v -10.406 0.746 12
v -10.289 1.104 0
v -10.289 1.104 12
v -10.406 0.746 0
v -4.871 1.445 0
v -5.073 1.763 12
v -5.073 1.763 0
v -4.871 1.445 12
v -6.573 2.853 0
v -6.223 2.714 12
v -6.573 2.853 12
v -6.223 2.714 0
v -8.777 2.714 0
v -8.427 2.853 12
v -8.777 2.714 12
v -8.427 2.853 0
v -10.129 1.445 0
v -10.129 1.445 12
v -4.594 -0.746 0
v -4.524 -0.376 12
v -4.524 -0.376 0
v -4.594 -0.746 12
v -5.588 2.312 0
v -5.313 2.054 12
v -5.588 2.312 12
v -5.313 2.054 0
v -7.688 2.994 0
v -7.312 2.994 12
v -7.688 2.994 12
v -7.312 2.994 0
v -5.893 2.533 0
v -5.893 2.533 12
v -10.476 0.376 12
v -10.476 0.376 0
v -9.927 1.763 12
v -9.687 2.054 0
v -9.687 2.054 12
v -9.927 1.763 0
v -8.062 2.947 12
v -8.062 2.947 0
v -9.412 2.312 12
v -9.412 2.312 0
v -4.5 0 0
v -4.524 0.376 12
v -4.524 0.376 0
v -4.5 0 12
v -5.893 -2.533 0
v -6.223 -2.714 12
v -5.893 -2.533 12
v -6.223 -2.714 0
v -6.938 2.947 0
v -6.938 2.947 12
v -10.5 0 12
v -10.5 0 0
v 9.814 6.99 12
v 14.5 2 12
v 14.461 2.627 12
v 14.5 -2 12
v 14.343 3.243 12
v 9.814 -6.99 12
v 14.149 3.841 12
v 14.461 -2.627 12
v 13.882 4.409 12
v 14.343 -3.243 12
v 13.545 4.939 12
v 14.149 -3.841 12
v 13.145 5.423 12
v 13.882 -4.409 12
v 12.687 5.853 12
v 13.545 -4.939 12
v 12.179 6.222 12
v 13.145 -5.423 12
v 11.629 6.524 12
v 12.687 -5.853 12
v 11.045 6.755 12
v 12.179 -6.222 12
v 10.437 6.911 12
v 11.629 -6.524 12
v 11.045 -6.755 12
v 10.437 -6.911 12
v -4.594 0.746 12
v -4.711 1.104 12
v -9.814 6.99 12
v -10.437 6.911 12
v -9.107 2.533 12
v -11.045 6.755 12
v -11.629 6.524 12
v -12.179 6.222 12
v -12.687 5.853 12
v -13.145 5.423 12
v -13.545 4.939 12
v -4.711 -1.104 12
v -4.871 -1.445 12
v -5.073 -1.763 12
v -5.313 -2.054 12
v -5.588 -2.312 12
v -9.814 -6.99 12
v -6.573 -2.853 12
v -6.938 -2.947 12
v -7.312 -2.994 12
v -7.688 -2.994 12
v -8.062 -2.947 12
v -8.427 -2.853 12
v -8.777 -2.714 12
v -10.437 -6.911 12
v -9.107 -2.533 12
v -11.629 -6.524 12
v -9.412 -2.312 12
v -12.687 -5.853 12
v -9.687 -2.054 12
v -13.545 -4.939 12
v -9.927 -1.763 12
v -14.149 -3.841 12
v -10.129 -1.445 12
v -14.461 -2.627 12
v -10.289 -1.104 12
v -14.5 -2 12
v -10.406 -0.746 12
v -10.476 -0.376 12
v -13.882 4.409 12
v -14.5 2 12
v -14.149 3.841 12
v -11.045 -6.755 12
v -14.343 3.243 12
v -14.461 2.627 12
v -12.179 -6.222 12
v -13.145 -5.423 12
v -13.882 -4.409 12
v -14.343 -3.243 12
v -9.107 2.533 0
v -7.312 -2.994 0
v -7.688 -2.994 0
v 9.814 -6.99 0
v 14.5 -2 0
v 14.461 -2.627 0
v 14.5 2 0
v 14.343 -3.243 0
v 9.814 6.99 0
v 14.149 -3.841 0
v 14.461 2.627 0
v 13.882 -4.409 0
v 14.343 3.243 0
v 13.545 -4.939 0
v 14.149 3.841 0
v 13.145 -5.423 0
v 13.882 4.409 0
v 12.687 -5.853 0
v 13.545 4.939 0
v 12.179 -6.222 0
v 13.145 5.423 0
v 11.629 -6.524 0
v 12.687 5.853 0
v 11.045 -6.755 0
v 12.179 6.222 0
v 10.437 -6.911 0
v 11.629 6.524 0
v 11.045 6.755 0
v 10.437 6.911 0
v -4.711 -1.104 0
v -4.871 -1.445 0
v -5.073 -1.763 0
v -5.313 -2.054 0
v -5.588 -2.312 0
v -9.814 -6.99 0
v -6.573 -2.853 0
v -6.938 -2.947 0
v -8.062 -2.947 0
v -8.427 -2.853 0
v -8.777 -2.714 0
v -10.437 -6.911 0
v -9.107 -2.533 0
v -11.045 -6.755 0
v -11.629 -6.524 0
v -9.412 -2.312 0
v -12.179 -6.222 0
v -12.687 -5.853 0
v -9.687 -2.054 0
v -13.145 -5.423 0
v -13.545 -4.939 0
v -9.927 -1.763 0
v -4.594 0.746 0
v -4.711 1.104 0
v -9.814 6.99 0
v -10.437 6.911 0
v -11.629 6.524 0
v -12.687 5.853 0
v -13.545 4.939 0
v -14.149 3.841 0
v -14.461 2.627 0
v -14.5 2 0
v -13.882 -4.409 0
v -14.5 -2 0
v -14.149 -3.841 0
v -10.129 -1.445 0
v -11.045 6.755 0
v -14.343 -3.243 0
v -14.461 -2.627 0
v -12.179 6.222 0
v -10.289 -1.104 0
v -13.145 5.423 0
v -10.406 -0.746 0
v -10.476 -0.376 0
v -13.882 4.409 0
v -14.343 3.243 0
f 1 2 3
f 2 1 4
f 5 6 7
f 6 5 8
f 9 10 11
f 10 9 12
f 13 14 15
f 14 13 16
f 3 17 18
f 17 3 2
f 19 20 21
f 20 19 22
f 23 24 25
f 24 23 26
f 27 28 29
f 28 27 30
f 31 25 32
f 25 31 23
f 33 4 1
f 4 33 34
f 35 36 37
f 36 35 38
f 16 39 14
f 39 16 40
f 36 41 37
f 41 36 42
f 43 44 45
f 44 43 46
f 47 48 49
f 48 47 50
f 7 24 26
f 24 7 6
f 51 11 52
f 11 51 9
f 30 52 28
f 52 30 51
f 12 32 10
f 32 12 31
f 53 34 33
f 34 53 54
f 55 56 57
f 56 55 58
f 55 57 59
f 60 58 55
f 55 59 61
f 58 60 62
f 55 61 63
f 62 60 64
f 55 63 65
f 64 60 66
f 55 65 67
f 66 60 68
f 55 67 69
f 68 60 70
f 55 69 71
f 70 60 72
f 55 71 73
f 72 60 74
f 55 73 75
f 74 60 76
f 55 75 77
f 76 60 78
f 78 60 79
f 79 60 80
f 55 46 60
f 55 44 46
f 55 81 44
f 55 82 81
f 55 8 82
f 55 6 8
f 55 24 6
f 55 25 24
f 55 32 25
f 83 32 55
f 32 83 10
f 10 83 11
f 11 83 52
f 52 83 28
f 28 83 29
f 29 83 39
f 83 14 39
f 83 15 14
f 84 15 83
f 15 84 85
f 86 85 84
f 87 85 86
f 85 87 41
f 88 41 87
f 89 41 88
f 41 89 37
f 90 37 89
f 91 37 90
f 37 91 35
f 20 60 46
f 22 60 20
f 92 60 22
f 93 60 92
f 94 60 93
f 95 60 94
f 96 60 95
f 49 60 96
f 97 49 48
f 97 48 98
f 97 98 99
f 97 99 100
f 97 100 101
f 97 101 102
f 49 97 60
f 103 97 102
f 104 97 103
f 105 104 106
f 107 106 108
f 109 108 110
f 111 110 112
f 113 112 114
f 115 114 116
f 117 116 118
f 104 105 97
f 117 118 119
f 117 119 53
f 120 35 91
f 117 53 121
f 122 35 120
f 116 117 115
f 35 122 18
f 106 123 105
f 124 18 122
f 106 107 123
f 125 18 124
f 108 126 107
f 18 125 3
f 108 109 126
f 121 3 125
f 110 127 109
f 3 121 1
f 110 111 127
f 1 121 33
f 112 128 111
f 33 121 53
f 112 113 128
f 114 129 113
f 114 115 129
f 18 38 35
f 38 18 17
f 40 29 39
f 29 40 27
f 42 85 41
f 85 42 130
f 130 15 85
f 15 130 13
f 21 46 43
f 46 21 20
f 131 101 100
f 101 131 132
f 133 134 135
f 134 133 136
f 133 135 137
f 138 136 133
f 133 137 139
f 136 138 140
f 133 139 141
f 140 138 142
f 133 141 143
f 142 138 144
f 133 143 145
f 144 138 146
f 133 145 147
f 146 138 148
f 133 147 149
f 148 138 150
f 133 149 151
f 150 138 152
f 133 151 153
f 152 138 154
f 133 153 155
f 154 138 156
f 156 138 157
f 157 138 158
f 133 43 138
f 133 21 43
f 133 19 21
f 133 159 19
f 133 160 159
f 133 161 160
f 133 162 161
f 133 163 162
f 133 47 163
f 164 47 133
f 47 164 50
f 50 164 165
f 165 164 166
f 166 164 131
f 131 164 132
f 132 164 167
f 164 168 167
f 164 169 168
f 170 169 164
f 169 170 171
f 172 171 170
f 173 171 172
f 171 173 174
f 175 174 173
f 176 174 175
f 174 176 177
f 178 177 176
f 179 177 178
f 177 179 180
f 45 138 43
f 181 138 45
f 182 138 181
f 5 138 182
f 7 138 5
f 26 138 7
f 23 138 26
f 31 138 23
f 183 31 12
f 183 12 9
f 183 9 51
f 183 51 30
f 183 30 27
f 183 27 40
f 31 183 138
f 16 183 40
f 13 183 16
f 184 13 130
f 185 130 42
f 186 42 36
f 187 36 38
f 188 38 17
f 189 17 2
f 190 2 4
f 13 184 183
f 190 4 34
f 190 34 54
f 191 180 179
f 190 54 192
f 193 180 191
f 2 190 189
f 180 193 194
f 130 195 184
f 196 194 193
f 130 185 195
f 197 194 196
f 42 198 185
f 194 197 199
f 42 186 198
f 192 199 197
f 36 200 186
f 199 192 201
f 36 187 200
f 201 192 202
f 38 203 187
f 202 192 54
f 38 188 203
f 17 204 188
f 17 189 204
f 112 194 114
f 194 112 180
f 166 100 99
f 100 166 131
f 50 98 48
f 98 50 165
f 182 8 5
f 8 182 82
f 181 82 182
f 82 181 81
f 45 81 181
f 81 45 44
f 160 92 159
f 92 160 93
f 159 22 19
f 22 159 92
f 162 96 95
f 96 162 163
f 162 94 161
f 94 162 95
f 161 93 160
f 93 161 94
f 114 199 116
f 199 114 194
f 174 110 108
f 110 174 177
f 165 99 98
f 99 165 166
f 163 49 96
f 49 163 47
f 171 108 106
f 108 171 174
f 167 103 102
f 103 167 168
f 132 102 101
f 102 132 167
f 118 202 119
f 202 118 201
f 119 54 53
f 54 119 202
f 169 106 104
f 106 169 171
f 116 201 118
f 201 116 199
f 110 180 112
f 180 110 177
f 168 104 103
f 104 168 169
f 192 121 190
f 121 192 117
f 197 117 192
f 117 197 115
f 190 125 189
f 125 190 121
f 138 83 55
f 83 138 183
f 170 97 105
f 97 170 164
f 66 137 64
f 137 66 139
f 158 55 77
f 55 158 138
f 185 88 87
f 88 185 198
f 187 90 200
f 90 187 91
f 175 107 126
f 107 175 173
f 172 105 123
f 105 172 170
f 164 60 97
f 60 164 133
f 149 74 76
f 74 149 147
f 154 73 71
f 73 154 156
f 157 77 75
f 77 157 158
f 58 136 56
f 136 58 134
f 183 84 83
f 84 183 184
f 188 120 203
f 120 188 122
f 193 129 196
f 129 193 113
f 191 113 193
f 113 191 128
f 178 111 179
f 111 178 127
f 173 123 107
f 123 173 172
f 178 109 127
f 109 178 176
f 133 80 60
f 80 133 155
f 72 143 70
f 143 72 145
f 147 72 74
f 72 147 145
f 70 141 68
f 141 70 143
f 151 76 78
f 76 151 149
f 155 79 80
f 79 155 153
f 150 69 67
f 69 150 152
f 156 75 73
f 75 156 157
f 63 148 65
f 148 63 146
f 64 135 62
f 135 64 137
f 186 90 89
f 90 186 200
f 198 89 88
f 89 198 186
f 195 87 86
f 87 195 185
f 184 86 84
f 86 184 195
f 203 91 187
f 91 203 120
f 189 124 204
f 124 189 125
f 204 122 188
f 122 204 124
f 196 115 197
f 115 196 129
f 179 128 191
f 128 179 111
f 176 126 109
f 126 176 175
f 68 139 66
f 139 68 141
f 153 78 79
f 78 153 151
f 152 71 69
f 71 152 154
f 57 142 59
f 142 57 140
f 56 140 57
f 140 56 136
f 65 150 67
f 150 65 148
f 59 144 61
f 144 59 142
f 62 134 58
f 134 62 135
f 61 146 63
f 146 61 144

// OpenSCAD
$fn = 50;


difference() {
	union() {
		hull() {
			translate(v = [-9.5000000000, 2.0000000000, 0]) {
				cylinder(h = 12, r = 5);
			}
			translate(v = [9.5000000000, 2.0000000000, 0]) {
				cylinder(h = 12, r = 5);
			}
			translate(v = [-9.5000000000, -2.0000000000, 0]) {
				cylinder(h = 12, r = 5);
			}
			translate(v = [9.5000000000, -2.0000000000, 0]) {
				cylinder(h = 12, r = 5);
			}
		}
	}
	union() {
		translate(v = [-7.5000000000, 0.0000000000, 0]) {
			cylinder(h = 12, r = 3.0000000000);
		}
		translate(v = [-7.5000000000, 0.0000000000, 0]) {
			cylinder(h = 12, r = 1.5000000000);
		}
		translate(v = [-7.5000000000, 0.0000000000, 0]) {
			cylinder(h = 12, r = 1.5000000000);
		}
		translate(v = [-7.5000000000, 0.0000000000, 0]) {
			cylinder(h = 12, r = 1.5000000000);
		}
	}
}
